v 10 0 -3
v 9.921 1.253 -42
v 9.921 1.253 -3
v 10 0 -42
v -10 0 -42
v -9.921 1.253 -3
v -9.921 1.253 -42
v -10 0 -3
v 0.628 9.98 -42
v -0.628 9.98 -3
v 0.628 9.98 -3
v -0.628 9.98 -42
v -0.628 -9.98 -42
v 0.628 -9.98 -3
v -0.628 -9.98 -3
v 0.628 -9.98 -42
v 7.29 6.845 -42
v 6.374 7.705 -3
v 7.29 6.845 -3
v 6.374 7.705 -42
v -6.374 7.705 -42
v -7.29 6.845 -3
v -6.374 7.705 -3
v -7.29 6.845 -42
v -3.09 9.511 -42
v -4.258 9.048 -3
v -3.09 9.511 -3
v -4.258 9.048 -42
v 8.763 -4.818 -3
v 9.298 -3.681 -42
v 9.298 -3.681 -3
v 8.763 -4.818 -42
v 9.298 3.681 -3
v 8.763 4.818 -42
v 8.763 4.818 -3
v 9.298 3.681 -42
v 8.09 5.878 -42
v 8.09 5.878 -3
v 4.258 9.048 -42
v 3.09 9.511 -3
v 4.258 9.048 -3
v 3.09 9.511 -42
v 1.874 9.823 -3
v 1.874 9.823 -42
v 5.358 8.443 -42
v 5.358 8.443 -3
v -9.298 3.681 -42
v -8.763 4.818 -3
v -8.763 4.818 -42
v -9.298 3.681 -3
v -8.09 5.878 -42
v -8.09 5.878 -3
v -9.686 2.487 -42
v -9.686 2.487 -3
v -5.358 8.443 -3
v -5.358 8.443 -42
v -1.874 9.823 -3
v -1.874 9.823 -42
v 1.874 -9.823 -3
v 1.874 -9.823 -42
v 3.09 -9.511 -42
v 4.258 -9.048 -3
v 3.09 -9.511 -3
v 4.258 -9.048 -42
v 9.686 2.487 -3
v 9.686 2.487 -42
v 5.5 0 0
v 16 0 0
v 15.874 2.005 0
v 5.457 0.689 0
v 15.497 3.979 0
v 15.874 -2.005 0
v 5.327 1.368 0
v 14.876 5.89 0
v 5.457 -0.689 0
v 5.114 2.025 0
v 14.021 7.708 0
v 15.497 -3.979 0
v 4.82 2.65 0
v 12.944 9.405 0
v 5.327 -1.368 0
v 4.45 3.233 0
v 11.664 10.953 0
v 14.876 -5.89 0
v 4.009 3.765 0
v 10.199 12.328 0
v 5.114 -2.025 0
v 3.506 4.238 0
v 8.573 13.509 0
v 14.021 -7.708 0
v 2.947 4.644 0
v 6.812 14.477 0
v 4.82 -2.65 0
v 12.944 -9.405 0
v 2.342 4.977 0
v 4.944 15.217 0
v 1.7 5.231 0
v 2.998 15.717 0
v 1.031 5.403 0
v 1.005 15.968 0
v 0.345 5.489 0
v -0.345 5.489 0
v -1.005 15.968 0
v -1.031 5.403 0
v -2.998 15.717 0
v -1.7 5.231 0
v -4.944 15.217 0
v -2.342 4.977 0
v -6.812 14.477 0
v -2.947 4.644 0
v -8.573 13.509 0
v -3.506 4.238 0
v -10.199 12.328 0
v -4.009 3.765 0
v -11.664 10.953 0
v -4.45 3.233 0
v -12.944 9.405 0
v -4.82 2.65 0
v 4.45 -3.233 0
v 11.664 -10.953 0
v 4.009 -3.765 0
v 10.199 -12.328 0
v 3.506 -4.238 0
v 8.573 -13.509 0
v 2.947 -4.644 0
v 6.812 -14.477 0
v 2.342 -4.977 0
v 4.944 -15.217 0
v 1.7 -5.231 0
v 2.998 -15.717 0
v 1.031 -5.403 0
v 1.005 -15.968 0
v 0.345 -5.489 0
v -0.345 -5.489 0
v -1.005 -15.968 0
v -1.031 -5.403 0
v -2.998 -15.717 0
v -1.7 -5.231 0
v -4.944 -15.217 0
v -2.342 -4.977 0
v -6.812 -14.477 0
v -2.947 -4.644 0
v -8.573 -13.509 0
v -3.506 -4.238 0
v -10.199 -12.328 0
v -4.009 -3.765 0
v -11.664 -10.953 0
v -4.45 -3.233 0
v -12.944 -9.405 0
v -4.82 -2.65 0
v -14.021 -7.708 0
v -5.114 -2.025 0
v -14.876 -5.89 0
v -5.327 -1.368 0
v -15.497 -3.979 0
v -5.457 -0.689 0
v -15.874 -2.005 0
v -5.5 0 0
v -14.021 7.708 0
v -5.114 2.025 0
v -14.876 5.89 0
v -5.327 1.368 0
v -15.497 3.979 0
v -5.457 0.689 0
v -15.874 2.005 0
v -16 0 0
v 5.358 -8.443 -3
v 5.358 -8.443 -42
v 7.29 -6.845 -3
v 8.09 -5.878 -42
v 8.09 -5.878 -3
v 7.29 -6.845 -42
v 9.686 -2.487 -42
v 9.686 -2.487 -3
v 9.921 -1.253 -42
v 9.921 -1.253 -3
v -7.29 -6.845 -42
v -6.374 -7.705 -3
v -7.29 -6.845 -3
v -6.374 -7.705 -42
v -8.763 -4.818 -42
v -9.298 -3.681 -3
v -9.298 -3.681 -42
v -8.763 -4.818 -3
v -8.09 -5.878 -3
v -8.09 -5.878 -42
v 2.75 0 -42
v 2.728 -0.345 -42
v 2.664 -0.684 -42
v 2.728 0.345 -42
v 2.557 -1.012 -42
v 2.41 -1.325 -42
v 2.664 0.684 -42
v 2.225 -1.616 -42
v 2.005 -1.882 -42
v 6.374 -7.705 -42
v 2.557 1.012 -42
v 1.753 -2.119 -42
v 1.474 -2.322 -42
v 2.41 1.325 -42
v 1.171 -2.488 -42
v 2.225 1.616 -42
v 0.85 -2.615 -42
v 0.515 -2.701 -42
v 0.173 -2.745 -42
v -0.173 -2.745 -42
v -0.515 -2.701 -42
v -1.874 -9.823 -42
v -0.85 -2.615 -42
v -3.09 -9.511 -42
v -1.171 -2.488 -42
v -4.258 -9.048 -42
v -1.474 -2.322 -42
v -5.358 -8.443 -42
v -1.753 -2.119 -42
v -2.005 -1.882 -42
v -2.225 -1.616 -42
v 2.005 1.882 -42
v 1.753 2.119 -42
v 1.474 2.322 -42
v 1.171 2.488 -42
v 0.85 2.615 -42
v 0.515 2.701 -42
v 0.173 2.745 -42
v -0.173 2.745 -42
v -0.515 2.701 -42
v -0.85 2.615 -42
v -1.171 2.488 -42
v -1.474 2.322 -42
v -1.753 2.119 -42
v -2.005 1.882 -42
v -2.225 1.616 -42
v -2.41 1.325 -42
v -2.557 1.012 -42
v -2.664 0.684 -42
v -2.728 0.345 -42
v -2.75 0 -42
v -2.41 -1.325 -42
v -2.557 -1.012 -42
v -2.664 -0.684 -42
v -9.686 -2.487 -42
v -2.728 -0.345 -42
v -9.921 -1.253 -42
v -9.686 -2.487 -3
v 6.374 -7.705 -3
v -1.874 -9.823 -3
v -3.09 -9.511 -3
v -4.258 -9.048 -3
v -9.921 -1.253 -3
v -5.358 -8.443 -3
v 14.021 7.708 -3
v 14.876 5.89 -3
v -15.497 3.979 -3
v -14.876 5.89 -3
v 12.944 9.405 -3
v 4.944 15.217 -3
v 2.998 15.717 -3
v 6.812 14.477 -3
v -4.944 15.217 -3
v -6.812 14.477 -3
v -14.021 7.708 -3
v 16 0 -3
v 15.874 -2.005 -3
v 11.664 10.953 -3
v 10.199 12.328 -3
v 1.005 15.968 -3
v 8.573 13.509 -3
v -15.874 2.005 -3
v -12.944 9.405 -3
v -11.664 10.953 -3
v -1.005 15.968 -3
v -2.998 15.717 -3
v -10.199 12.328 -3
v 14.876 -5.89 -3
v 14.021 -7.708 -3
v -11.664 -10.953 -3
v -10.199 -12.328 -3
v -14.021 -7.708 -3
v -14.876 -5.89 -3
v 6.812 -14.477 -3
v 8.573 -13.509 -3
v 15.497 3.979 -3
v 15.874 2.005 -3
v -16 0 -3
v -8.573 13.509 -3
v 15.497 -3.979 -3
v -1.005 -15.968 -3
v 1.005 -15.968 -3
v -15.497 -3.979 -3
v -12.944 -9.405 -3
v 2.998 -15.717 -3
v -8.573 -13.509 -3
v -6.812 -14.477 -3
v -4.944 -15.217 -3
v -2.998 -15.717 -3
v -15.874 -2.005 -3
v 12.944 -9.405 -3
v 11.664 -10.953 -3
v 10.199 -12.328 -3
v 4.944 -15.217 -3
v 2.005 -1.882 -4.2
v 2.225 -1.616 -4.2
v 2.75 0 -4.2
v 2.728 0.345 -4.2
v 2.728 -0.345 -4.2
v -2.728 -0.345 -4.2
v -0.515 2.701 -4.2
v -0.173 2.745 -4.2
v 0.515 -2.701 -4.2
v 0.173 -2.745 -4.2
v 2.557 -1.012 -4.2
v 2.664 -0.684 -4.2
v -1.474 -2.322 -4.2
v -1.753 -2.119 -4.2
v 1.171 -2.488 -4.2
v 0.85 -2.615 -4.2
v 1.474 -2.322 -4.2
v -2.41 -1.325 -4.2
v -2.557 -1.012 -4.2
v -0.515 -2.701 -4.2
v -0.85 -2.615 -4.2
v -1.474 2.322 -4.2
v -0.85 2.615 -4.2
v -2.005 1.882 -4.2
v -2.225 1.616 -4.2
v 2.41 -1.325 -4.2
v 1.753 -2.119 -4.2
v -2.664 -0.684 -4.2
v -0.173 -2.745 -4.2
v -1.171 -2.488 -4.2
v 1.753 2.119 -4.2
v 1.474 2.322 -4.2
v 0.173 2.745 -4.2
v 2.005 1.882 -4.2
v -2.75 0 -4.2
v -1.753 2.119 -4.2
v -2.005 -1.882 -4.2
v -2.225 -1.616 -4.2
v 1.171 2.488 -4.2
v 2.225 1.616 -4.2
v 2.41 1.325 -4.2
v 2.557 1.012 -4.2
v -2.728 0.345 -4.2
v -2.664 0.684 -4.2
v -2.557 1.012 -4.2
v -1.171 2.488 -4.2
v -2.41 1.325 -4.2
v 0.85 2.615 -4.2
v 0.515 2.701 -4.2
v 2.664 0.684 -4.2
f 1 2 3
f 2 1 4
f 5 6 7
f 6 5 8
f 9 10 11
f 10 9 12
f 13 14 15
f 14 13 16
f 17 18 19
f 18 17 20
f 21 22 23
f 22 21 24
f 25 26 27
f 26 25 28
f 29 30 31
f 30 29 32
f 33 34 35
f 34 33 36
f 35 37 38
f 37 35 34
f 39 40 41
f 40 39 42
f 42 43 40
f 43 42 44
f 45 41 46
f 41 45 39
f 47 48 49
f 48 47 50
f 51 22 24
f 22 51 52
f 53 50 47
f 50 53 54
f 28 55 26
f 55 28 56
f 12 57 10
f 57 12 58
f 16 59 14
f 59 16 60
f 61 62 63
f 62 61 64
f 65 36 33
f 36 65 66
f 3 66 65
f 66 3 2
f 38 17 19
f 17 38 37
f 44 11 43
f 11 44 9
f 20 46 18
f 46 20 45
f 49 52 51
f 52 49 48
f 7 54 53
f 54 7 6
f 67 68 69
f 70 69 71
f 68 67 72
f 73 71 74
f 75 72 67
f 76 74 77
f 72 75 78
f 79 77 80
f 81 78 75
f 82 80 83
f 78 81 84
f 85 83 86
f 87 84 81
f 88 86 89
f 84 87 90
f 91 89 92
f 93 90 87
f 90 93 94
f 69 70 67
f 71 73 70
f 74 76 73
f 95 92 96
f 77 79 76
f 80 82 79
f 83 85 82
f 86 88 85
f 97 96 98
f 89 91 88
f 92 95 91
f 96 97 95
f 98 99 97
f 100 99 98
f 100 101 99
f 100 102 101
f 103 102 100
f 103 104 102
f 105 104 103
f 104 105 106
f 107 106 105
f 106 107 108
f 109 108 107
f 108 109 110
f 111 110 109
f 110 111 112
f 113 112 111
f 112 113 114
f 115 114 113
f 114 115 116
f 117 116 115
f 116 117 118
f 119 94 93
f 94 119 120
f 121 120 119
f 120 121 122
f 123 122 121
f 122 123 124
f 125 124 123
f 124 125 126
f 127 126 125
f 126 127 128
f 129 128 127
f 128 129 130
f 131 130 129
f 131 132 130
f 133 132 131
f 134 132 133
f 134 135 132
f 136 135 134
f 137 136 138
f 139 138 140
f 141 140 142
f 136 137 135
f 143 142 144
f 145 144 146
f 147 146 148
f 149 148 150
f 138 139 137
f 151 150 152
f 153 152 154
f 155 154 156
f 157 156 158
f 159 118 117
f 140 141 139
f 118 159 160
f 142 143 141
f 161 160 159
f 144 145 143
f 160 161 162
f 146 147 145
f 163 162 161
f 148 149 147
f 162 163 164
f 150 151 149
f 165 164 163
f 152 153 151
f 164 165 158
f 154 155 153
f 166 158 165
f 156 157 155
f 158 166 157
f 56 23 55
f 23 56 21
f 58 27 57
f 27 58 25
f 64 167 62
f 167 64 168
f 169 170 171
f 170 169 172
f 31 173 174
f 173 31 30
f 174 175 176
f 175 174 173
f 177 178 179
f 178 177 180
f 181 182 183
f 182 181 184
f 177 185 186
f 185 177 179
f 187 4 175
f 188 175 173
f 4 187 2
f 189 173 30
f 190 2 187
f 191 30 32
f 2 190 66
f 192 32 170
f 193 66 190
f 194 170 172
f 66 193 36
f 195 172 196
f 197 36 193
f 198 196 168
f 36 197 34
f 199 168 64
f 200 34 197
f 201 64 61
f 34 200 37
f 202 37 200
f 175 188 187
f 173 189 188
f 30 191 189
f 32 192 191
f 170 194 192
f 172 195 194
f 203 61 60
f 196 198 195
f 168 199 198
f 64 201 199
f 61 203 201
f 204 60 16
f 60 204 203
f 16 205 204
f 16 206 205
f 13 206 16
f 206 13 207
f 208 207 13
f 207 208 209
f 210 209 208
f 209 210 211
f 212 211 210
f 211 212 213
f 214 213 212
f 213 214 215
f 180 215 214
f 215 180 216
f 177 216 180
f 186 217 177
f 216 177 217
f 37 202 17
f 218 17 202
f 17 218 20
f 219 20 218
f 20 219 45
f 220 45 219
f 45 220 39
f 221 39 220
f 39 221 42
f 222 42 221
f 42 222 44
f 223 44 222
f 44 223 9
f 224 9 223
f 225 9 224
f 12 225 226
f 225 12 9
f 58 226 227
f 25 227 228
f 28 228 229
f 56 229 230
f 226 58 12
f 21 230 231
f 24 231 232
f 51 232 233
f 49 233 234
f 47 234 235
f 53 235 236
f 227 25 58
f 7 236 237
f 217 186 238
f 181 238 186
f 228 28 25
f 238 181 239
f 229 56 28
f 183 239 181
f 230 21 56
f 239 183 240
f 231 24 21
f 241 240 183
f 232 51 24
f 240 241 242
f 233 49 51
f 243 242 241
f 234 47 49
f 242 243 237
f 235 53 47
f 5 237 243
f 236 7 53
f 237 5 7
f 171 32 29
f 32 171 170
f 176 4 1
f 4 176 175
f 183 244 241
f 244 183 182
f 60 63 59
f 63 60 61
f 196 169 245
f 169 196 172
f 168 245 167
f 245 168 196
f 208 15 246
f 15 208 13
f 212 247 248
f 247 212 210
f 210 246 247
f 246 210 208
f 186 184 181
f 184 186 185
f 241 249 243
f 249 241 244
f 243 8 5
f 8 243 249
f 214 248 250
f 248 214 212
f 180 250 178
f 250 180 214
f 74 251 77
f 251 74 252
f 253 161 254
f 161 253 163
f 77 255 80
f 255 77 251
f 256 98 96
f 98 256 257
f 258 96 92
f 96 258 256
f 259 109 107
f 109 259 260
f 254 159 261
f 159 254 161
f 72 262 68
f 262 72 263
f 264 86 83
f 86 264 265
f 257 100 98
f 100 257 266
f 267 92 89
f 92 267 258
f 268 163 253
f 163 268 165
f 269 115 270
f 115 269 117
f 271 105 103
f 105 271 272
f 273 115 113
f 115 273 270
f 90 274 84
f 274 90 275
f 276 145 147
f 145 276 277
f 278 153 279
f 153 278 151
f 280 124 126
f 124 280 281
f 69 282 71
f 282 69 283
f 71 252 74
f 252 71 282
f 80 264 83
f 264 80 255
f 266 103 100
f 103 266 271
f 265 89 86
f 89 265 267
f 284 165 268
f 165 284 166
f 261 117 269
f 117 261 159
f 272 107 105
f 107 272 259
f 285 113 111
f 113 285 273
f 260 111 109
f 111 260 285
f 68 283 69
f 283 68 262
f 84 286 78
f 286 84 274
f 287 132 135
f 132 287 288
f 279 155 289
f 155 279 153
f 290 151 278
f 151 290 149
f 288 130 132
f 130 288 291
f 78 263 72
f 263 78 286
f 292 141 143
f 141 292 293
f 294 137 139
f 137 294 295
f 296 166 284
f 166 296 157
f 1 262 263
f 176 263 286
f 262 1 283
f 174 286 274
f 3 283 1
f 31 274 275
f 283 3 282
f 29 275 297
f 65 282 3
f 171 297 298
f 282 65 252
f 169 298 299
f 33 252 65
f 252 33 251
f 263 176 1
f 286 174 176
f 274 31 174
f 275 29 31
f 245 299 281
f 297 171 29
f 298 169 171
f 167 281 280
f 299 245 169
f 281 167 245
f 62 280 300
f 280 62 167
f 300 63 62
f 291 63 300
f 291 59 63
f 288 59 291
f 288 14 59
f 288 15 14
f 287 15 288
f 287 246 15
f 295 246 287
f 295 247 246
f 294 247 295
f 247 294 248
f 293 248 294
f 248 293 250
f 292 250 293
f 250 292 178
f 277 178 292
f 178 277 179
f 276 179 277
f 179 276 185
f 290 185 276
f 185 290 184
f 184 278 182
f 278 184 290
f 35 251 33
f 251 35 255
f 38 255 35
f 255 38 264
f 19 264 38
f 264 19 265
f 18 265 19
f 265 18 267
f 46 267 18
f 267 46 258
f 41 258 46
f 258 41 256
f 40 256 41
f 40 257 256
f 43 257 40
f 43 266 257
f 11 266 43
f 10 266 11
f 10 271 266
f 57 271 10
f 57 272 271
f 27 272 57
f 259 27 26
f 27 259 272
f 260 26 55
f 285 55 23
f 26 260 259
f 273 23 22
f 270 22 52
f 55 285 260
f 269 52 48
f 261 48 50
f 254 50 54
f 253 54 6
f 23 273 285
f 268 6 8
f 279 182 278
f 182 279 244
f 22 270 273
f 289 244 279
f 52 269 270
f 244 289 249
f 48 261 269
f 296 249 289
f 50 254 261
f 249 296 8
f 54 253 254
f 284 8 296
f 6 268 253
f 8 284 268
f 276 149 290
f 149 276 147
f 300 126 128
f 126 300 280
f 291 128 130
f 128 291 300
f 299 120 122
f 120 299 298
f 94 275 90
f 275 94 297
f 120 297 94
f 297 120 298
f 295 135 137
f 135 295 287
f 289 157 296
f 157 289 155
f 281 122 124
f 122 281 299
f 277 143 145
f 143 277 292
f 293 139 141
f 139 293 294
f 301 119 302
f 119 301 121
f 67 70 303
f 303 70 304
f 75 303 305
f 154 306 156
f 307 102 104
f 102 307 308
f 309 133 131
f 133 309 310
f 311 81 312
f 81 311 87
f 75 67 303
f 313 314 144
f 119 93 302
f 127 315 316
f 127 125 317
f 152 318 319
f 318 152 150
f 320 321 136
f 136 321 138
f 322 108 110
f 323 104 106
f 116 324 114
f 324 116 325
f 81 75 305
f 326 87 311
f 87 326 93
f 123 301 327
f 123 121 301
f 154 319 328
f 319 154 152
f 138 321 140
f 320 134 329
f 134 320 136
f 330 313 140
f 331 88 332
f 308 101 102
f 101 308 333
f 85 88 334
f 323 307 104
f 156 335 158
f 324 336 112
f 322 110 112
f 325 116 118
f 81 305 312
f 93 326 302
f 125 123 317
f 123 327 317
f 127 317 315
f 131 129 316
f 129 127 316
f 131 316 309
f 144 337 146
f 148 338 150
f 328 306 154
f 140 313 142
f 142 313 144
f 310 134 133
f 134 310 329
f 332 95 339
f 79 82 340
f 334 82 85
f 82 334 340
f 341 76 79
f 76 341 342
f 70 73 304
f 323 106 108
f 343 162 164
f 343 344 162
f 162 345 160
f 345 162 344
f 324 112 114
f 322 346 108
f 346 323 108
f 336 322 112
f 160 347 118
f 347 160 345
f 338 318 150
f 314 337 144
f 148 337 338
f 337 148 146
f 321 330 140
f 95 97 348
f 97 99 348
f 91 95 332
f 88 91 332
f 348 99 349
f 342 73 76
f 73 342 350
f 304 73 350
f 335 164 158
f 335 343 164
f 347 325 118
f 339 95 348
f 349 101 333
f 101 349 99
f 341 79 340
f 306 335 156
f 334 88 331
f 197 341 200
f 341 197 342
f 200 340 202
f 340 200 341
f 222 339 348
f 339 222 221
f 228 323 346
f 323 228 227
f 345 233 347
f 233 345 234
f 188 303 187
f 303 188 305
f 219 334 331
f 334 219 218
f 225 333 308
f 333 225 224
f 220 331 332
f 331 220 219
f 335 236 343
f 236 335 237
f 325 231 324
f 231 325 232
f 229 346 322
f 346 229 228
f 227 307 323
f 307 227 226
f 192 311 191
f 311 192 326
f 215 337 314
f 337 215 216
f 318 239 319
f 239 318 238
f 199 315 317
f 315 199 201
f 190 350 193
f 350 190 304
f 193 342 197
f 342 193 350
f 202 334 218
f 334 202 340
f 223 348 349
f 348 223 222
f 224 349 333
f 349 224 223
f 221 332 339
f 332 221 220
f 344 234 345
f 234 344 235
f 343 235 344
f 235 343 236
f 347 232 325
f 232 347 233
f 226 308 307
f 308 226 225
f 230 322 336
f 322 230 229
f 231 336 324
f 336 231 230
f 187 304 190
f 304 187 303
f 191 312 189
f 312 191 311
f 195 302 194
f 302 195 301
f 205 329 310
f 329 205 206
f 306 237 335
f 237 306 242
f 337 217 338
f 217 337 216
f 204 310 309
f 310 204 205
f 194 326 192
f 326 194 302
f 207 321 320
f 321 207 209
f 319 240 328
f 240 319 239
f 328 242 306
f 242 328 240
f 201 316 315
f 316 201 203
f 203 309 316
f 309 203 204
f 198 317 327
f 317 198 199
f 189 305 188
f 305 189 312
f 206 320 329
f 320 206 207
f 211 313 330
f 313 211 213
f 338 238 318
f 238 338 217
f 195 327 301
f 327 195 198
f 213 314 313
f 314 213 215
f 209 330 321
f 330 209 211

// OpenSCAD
$fn = 50;


difference() {
	union() {
		translate(v = [0, 0, -42.0000000000]) {
			cylinder(h = 42, r = 10.0000000000);
		}
		translate(v = [0, 0, -3.0000000000]) {
			cylinder(h = 3, r = 16.0000000000);
		}
	}
	union() {
		translate(v = [0, 0, 0]) {
			rotate(a = [0, 0, 0]) {
				difference() {
					union() {
						#translate(v = [0, 0, -42.0000000000]) {
							cylinder(h = 42, r = 2.2500000000);
						}
						#translate(v = [0, 0, -4.2000000000]) {
							cylinder(h = 4.2000000000, r = 10.0000000000, r1 = 2.7500000000, r2 = 5.5000000000);
						}
						#translate(v = [0, 0, -42.0000000000]) {
							cylinder(h = 42, r = 2.7500000000);
						}
						#translate(v = [0, 0, -42.0000000000]) {
							cylinder(h = 42, r = 2.2500000000);
						}
					}
					union();
				}
			}
		}
	}
}
